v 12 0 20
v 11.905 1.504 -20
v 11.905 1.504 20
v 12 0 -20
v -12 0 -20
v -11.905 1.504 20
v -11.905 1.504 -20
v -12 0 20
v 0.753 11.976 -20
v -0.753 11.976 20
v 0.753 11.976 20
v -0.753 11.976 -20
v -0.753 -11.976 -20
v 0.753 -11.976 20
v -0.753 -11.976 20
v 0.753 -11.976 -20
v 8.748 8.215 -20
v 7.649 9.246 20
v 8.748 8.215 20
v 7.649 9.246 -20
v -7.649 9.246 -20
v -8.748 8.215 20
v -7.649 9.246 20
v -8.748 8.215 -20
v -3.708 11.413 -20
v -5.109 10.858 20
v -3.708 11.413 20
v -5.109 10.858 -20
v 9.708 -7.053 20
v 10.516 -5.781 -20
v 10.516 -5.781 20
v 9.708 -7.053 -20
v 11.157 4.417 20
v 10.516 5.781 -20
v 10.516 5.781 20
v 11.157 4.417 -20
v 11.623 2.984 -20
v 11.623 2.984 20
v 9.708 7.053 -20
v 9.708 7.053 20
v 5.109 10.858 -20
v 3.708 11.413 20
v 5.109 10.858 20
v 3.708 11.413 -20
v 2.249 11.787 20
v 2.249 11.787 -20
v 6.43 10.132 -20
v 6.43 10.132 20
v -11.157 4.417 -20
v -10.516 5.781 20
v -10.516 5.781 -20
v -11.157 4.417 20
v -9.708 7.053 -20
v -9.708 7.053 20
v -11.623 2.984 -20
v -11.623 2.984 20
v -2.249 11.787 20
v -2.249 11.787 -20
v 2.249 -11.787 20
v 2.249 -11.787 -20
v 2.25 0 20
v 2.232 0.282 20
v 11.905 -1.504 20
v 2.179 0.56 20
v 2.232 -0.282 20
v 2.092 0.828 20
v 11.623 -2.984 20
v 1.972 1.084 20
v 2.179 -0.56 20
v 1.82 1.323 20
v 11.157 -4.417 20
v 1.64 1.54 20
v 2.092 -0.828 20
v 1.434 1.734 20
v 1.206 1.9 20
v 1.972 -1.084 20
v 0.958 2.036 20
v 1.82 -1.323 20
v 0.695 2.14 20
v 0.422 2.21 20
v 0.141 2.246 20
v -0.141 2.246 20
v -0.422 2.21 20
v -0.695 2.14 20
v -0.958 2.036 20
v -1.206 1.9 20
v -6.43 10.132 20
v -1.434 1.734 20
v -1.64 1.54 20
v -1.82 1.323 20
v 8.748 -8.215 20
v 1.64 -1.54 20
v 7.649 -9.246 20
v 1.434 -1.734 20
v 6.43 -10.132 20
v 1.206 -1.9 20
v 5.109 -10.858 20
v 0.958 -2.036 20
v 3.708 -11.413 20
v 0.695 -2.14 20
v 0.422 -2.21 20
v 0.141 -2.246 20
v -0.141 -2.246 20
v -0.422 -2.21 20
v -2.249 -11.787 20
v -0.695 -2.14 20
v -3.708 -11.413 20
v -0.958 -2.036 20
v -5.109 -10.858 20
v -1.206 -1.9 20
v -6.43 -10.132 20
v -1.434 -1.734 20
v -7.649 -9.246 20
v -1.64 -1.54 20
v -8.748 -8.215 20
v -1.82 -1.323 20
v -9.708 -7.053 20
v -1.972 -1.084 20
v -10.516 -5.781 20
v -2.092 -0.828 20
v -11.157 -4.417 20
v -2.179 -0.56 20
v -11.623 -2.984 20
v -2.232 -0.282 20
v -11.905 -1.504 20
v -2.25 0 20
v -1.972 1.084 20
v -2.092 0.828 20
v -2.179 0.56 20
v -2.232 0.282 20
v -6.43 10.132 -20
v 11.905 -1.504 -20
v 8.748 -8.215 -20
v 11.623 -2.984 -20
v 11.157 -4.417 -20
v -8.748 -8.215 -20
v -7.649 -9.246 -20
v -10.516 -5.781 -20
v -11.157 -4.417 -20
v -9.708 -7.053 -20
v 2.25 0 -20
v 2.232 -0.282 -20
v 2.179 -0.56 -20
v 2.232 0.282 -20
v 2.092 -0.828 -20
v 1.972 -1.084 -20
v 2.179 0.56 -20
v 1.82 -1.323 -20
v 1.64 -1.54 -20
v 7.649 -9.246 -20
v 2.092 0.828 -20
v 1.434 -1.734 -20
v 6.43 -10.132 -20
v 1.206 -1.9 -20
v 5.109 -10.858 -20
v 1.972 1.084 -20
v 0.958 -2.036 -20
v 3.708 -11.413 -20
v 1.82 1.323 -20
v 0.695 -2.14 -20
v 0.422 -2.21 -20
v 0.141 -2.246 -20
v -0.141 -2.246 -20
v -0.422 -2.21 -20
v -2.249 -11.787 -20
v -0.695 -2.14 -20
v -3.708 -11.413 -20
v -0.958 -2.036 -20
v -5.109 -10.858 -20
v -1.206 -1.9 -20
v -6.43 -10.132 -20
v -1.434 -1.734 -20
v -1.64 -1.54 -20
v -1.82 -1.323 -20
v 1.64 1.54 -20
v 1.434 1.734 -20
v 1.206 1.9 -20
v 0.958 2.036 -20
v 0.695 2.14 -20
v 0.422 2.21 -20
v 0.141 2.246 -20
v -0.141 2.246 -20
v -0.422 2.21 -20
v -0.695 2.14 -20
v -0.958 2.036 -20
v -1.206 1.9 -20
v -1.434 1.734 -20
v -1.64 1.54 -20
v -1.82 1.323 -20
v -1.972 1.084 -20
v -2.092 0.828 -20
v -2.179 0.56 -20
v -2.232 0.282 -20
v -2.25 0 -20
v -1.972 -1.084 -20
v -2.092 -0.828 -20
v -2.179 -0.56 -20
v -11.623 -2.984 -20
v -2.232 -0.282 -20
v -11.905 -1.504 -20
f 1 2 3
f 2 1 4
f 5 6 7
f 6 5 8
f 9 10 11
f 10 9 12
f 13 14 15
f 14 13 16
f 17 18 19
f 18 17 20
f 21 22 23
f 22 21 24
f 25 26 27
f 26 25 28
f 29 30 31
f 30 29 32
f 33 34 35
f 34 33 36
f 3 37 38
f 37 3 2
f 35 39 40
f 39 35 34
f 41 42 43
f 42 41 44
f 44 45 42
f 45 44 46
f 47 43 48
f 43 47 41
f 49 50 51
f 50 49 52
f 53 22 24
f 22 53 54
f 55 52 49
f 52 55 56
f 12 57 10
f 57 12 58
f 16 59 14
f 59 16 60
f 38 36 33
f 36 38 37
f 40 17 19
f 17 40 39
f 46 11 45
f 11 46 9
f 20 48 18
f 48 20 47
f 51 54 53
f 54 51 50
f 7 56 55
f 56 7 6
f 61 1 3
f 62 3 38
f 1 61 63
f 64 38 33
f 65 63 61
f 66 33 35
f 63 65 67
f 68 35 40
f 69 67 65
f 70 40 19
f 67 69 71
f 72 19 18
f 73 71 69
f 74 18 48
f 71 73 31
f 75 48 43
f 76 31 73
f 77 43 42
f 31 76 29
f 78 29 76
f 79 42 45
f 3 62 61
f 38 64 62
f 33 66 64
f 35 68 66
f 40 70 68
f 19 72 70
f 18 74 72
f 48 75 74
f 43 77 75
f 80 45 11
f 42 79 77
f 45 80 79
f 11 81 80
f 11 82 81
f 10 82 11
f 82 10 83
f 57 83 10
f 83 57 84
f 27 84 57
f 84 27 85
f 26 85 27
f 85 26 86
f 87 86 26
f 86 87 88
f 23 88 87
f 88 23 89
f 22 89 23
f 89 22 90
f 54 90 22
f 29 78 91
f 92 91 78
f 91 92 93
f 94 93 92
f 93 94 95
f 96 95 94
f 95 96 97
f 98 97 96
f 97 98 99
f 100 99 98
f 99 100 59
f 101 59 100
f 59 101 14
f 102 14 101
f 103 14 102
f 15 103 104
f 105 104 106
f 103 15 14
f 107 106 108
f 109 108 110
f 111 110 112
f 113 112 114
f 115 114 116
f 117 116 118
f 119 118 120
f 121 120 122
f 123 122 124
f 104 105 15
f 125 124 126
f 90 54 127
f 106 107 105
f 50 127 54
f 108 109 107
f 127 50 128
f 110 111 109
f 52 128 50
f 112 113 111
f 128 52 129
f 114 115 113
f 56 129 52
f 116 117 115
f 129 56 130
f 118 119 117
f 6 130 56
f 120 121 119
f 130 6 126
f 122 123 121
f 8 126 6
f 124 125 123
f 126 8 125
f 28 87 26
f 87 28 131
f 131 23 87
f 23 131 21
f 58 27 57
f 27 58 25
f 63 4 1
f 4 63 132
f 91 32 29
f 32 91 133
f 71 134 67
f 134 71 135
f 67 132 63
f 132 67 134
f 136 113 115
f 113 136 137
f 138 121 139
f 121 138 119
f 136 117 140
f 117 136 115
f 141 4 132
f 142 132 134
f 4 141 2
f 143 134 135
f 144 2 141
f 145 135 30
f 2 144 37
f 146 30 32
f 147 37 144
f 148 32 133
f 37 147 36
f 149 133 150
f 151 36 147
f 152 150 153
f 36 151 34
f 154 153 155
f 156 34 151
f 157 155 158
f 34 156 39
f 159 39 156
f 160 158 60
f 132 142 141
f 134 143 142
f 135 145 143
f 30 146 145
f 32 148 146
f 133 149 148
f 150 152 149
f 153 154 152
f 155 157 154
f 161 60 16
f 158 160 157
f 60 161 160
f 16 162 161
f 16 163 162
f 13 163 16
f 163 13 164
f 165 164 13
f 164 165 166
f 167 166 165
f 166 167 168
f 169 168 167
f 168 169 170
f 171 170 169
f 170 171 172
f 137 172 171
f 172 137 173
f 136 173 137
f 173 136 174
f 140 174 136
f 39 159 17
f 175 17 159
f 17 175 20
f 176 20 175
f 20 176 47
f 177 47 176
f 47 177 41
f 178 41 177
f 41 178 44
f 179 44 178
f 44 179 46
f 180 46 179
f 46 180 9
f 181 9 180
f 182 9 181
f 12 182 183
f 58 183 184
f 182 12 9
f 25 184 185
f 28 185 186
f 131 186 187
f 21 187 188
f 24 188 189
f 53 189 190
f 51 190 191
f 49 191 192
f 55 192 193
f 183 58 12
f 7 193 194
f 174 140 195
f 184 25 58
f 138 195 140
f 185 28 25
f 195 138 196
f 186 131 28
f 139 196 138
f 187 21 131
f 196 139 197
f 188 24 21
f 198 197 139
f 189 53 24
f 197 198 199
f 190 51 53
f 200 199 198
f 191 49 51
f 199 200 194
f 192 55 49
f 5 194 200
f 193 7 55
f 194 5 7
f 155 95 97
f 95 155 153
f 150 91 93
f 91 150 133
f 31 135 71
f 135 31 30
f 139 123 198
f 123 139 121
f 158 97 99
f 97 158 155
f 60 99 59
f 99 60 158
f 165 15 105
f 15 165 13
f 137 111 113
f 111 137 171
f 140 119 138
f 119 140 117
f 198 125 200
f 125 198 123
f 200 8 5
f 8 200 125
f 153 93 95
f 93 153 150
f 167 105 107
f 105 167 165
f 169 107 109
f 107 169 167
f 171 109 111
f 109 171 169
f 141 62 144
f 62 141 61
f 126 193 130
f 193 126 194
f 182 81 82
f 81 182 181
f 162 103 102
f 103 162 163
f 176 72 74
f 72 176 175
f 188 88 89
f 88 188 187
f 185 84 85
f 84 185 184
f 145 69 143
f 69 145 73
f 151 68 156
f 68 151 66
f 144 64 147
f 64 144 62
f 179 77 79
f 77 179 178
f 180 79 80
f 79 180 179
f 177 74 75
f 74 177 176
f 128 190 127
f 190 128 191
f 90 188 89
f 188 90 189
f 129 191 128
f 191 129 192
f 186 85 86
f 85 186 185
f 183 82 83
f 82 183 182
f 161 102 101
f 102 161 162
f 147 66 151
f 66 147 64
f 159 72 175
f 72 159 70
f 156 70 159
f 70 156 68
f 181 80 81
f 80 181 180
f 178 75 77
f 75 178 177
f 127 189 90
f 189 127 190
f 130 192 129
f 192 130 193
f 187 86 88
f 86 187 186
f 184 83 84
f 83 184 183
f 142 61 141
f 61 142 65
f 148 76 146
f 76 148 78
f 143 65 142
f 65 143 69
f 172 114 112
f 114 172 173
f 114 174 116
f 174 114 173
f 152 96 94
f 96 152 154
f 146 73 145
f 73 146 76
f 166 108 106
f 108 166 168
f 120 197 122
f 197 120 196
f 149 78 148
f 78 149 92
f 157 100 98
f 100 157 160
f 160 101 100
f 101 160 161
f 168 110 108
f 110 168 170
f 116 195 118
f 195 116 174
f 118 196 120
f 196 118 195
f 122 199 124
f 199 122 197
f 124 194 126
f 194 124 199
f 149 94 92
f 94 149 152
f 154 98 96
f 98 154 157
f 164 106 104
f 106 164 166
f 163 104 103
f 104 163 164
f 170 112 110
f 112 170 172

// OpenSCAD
$fn = 50;


difference() {
	union() {
		translate(v = [0, 0, -20.0000000000]) {
			cylinder(h = 40, r = 12.0000000000);
		}
	}
	union() {
		translate(v = [0, 0, -100.0000000000]) {
			cylinder(h = 200, r = 2.2500000000);
		}
	}
}
